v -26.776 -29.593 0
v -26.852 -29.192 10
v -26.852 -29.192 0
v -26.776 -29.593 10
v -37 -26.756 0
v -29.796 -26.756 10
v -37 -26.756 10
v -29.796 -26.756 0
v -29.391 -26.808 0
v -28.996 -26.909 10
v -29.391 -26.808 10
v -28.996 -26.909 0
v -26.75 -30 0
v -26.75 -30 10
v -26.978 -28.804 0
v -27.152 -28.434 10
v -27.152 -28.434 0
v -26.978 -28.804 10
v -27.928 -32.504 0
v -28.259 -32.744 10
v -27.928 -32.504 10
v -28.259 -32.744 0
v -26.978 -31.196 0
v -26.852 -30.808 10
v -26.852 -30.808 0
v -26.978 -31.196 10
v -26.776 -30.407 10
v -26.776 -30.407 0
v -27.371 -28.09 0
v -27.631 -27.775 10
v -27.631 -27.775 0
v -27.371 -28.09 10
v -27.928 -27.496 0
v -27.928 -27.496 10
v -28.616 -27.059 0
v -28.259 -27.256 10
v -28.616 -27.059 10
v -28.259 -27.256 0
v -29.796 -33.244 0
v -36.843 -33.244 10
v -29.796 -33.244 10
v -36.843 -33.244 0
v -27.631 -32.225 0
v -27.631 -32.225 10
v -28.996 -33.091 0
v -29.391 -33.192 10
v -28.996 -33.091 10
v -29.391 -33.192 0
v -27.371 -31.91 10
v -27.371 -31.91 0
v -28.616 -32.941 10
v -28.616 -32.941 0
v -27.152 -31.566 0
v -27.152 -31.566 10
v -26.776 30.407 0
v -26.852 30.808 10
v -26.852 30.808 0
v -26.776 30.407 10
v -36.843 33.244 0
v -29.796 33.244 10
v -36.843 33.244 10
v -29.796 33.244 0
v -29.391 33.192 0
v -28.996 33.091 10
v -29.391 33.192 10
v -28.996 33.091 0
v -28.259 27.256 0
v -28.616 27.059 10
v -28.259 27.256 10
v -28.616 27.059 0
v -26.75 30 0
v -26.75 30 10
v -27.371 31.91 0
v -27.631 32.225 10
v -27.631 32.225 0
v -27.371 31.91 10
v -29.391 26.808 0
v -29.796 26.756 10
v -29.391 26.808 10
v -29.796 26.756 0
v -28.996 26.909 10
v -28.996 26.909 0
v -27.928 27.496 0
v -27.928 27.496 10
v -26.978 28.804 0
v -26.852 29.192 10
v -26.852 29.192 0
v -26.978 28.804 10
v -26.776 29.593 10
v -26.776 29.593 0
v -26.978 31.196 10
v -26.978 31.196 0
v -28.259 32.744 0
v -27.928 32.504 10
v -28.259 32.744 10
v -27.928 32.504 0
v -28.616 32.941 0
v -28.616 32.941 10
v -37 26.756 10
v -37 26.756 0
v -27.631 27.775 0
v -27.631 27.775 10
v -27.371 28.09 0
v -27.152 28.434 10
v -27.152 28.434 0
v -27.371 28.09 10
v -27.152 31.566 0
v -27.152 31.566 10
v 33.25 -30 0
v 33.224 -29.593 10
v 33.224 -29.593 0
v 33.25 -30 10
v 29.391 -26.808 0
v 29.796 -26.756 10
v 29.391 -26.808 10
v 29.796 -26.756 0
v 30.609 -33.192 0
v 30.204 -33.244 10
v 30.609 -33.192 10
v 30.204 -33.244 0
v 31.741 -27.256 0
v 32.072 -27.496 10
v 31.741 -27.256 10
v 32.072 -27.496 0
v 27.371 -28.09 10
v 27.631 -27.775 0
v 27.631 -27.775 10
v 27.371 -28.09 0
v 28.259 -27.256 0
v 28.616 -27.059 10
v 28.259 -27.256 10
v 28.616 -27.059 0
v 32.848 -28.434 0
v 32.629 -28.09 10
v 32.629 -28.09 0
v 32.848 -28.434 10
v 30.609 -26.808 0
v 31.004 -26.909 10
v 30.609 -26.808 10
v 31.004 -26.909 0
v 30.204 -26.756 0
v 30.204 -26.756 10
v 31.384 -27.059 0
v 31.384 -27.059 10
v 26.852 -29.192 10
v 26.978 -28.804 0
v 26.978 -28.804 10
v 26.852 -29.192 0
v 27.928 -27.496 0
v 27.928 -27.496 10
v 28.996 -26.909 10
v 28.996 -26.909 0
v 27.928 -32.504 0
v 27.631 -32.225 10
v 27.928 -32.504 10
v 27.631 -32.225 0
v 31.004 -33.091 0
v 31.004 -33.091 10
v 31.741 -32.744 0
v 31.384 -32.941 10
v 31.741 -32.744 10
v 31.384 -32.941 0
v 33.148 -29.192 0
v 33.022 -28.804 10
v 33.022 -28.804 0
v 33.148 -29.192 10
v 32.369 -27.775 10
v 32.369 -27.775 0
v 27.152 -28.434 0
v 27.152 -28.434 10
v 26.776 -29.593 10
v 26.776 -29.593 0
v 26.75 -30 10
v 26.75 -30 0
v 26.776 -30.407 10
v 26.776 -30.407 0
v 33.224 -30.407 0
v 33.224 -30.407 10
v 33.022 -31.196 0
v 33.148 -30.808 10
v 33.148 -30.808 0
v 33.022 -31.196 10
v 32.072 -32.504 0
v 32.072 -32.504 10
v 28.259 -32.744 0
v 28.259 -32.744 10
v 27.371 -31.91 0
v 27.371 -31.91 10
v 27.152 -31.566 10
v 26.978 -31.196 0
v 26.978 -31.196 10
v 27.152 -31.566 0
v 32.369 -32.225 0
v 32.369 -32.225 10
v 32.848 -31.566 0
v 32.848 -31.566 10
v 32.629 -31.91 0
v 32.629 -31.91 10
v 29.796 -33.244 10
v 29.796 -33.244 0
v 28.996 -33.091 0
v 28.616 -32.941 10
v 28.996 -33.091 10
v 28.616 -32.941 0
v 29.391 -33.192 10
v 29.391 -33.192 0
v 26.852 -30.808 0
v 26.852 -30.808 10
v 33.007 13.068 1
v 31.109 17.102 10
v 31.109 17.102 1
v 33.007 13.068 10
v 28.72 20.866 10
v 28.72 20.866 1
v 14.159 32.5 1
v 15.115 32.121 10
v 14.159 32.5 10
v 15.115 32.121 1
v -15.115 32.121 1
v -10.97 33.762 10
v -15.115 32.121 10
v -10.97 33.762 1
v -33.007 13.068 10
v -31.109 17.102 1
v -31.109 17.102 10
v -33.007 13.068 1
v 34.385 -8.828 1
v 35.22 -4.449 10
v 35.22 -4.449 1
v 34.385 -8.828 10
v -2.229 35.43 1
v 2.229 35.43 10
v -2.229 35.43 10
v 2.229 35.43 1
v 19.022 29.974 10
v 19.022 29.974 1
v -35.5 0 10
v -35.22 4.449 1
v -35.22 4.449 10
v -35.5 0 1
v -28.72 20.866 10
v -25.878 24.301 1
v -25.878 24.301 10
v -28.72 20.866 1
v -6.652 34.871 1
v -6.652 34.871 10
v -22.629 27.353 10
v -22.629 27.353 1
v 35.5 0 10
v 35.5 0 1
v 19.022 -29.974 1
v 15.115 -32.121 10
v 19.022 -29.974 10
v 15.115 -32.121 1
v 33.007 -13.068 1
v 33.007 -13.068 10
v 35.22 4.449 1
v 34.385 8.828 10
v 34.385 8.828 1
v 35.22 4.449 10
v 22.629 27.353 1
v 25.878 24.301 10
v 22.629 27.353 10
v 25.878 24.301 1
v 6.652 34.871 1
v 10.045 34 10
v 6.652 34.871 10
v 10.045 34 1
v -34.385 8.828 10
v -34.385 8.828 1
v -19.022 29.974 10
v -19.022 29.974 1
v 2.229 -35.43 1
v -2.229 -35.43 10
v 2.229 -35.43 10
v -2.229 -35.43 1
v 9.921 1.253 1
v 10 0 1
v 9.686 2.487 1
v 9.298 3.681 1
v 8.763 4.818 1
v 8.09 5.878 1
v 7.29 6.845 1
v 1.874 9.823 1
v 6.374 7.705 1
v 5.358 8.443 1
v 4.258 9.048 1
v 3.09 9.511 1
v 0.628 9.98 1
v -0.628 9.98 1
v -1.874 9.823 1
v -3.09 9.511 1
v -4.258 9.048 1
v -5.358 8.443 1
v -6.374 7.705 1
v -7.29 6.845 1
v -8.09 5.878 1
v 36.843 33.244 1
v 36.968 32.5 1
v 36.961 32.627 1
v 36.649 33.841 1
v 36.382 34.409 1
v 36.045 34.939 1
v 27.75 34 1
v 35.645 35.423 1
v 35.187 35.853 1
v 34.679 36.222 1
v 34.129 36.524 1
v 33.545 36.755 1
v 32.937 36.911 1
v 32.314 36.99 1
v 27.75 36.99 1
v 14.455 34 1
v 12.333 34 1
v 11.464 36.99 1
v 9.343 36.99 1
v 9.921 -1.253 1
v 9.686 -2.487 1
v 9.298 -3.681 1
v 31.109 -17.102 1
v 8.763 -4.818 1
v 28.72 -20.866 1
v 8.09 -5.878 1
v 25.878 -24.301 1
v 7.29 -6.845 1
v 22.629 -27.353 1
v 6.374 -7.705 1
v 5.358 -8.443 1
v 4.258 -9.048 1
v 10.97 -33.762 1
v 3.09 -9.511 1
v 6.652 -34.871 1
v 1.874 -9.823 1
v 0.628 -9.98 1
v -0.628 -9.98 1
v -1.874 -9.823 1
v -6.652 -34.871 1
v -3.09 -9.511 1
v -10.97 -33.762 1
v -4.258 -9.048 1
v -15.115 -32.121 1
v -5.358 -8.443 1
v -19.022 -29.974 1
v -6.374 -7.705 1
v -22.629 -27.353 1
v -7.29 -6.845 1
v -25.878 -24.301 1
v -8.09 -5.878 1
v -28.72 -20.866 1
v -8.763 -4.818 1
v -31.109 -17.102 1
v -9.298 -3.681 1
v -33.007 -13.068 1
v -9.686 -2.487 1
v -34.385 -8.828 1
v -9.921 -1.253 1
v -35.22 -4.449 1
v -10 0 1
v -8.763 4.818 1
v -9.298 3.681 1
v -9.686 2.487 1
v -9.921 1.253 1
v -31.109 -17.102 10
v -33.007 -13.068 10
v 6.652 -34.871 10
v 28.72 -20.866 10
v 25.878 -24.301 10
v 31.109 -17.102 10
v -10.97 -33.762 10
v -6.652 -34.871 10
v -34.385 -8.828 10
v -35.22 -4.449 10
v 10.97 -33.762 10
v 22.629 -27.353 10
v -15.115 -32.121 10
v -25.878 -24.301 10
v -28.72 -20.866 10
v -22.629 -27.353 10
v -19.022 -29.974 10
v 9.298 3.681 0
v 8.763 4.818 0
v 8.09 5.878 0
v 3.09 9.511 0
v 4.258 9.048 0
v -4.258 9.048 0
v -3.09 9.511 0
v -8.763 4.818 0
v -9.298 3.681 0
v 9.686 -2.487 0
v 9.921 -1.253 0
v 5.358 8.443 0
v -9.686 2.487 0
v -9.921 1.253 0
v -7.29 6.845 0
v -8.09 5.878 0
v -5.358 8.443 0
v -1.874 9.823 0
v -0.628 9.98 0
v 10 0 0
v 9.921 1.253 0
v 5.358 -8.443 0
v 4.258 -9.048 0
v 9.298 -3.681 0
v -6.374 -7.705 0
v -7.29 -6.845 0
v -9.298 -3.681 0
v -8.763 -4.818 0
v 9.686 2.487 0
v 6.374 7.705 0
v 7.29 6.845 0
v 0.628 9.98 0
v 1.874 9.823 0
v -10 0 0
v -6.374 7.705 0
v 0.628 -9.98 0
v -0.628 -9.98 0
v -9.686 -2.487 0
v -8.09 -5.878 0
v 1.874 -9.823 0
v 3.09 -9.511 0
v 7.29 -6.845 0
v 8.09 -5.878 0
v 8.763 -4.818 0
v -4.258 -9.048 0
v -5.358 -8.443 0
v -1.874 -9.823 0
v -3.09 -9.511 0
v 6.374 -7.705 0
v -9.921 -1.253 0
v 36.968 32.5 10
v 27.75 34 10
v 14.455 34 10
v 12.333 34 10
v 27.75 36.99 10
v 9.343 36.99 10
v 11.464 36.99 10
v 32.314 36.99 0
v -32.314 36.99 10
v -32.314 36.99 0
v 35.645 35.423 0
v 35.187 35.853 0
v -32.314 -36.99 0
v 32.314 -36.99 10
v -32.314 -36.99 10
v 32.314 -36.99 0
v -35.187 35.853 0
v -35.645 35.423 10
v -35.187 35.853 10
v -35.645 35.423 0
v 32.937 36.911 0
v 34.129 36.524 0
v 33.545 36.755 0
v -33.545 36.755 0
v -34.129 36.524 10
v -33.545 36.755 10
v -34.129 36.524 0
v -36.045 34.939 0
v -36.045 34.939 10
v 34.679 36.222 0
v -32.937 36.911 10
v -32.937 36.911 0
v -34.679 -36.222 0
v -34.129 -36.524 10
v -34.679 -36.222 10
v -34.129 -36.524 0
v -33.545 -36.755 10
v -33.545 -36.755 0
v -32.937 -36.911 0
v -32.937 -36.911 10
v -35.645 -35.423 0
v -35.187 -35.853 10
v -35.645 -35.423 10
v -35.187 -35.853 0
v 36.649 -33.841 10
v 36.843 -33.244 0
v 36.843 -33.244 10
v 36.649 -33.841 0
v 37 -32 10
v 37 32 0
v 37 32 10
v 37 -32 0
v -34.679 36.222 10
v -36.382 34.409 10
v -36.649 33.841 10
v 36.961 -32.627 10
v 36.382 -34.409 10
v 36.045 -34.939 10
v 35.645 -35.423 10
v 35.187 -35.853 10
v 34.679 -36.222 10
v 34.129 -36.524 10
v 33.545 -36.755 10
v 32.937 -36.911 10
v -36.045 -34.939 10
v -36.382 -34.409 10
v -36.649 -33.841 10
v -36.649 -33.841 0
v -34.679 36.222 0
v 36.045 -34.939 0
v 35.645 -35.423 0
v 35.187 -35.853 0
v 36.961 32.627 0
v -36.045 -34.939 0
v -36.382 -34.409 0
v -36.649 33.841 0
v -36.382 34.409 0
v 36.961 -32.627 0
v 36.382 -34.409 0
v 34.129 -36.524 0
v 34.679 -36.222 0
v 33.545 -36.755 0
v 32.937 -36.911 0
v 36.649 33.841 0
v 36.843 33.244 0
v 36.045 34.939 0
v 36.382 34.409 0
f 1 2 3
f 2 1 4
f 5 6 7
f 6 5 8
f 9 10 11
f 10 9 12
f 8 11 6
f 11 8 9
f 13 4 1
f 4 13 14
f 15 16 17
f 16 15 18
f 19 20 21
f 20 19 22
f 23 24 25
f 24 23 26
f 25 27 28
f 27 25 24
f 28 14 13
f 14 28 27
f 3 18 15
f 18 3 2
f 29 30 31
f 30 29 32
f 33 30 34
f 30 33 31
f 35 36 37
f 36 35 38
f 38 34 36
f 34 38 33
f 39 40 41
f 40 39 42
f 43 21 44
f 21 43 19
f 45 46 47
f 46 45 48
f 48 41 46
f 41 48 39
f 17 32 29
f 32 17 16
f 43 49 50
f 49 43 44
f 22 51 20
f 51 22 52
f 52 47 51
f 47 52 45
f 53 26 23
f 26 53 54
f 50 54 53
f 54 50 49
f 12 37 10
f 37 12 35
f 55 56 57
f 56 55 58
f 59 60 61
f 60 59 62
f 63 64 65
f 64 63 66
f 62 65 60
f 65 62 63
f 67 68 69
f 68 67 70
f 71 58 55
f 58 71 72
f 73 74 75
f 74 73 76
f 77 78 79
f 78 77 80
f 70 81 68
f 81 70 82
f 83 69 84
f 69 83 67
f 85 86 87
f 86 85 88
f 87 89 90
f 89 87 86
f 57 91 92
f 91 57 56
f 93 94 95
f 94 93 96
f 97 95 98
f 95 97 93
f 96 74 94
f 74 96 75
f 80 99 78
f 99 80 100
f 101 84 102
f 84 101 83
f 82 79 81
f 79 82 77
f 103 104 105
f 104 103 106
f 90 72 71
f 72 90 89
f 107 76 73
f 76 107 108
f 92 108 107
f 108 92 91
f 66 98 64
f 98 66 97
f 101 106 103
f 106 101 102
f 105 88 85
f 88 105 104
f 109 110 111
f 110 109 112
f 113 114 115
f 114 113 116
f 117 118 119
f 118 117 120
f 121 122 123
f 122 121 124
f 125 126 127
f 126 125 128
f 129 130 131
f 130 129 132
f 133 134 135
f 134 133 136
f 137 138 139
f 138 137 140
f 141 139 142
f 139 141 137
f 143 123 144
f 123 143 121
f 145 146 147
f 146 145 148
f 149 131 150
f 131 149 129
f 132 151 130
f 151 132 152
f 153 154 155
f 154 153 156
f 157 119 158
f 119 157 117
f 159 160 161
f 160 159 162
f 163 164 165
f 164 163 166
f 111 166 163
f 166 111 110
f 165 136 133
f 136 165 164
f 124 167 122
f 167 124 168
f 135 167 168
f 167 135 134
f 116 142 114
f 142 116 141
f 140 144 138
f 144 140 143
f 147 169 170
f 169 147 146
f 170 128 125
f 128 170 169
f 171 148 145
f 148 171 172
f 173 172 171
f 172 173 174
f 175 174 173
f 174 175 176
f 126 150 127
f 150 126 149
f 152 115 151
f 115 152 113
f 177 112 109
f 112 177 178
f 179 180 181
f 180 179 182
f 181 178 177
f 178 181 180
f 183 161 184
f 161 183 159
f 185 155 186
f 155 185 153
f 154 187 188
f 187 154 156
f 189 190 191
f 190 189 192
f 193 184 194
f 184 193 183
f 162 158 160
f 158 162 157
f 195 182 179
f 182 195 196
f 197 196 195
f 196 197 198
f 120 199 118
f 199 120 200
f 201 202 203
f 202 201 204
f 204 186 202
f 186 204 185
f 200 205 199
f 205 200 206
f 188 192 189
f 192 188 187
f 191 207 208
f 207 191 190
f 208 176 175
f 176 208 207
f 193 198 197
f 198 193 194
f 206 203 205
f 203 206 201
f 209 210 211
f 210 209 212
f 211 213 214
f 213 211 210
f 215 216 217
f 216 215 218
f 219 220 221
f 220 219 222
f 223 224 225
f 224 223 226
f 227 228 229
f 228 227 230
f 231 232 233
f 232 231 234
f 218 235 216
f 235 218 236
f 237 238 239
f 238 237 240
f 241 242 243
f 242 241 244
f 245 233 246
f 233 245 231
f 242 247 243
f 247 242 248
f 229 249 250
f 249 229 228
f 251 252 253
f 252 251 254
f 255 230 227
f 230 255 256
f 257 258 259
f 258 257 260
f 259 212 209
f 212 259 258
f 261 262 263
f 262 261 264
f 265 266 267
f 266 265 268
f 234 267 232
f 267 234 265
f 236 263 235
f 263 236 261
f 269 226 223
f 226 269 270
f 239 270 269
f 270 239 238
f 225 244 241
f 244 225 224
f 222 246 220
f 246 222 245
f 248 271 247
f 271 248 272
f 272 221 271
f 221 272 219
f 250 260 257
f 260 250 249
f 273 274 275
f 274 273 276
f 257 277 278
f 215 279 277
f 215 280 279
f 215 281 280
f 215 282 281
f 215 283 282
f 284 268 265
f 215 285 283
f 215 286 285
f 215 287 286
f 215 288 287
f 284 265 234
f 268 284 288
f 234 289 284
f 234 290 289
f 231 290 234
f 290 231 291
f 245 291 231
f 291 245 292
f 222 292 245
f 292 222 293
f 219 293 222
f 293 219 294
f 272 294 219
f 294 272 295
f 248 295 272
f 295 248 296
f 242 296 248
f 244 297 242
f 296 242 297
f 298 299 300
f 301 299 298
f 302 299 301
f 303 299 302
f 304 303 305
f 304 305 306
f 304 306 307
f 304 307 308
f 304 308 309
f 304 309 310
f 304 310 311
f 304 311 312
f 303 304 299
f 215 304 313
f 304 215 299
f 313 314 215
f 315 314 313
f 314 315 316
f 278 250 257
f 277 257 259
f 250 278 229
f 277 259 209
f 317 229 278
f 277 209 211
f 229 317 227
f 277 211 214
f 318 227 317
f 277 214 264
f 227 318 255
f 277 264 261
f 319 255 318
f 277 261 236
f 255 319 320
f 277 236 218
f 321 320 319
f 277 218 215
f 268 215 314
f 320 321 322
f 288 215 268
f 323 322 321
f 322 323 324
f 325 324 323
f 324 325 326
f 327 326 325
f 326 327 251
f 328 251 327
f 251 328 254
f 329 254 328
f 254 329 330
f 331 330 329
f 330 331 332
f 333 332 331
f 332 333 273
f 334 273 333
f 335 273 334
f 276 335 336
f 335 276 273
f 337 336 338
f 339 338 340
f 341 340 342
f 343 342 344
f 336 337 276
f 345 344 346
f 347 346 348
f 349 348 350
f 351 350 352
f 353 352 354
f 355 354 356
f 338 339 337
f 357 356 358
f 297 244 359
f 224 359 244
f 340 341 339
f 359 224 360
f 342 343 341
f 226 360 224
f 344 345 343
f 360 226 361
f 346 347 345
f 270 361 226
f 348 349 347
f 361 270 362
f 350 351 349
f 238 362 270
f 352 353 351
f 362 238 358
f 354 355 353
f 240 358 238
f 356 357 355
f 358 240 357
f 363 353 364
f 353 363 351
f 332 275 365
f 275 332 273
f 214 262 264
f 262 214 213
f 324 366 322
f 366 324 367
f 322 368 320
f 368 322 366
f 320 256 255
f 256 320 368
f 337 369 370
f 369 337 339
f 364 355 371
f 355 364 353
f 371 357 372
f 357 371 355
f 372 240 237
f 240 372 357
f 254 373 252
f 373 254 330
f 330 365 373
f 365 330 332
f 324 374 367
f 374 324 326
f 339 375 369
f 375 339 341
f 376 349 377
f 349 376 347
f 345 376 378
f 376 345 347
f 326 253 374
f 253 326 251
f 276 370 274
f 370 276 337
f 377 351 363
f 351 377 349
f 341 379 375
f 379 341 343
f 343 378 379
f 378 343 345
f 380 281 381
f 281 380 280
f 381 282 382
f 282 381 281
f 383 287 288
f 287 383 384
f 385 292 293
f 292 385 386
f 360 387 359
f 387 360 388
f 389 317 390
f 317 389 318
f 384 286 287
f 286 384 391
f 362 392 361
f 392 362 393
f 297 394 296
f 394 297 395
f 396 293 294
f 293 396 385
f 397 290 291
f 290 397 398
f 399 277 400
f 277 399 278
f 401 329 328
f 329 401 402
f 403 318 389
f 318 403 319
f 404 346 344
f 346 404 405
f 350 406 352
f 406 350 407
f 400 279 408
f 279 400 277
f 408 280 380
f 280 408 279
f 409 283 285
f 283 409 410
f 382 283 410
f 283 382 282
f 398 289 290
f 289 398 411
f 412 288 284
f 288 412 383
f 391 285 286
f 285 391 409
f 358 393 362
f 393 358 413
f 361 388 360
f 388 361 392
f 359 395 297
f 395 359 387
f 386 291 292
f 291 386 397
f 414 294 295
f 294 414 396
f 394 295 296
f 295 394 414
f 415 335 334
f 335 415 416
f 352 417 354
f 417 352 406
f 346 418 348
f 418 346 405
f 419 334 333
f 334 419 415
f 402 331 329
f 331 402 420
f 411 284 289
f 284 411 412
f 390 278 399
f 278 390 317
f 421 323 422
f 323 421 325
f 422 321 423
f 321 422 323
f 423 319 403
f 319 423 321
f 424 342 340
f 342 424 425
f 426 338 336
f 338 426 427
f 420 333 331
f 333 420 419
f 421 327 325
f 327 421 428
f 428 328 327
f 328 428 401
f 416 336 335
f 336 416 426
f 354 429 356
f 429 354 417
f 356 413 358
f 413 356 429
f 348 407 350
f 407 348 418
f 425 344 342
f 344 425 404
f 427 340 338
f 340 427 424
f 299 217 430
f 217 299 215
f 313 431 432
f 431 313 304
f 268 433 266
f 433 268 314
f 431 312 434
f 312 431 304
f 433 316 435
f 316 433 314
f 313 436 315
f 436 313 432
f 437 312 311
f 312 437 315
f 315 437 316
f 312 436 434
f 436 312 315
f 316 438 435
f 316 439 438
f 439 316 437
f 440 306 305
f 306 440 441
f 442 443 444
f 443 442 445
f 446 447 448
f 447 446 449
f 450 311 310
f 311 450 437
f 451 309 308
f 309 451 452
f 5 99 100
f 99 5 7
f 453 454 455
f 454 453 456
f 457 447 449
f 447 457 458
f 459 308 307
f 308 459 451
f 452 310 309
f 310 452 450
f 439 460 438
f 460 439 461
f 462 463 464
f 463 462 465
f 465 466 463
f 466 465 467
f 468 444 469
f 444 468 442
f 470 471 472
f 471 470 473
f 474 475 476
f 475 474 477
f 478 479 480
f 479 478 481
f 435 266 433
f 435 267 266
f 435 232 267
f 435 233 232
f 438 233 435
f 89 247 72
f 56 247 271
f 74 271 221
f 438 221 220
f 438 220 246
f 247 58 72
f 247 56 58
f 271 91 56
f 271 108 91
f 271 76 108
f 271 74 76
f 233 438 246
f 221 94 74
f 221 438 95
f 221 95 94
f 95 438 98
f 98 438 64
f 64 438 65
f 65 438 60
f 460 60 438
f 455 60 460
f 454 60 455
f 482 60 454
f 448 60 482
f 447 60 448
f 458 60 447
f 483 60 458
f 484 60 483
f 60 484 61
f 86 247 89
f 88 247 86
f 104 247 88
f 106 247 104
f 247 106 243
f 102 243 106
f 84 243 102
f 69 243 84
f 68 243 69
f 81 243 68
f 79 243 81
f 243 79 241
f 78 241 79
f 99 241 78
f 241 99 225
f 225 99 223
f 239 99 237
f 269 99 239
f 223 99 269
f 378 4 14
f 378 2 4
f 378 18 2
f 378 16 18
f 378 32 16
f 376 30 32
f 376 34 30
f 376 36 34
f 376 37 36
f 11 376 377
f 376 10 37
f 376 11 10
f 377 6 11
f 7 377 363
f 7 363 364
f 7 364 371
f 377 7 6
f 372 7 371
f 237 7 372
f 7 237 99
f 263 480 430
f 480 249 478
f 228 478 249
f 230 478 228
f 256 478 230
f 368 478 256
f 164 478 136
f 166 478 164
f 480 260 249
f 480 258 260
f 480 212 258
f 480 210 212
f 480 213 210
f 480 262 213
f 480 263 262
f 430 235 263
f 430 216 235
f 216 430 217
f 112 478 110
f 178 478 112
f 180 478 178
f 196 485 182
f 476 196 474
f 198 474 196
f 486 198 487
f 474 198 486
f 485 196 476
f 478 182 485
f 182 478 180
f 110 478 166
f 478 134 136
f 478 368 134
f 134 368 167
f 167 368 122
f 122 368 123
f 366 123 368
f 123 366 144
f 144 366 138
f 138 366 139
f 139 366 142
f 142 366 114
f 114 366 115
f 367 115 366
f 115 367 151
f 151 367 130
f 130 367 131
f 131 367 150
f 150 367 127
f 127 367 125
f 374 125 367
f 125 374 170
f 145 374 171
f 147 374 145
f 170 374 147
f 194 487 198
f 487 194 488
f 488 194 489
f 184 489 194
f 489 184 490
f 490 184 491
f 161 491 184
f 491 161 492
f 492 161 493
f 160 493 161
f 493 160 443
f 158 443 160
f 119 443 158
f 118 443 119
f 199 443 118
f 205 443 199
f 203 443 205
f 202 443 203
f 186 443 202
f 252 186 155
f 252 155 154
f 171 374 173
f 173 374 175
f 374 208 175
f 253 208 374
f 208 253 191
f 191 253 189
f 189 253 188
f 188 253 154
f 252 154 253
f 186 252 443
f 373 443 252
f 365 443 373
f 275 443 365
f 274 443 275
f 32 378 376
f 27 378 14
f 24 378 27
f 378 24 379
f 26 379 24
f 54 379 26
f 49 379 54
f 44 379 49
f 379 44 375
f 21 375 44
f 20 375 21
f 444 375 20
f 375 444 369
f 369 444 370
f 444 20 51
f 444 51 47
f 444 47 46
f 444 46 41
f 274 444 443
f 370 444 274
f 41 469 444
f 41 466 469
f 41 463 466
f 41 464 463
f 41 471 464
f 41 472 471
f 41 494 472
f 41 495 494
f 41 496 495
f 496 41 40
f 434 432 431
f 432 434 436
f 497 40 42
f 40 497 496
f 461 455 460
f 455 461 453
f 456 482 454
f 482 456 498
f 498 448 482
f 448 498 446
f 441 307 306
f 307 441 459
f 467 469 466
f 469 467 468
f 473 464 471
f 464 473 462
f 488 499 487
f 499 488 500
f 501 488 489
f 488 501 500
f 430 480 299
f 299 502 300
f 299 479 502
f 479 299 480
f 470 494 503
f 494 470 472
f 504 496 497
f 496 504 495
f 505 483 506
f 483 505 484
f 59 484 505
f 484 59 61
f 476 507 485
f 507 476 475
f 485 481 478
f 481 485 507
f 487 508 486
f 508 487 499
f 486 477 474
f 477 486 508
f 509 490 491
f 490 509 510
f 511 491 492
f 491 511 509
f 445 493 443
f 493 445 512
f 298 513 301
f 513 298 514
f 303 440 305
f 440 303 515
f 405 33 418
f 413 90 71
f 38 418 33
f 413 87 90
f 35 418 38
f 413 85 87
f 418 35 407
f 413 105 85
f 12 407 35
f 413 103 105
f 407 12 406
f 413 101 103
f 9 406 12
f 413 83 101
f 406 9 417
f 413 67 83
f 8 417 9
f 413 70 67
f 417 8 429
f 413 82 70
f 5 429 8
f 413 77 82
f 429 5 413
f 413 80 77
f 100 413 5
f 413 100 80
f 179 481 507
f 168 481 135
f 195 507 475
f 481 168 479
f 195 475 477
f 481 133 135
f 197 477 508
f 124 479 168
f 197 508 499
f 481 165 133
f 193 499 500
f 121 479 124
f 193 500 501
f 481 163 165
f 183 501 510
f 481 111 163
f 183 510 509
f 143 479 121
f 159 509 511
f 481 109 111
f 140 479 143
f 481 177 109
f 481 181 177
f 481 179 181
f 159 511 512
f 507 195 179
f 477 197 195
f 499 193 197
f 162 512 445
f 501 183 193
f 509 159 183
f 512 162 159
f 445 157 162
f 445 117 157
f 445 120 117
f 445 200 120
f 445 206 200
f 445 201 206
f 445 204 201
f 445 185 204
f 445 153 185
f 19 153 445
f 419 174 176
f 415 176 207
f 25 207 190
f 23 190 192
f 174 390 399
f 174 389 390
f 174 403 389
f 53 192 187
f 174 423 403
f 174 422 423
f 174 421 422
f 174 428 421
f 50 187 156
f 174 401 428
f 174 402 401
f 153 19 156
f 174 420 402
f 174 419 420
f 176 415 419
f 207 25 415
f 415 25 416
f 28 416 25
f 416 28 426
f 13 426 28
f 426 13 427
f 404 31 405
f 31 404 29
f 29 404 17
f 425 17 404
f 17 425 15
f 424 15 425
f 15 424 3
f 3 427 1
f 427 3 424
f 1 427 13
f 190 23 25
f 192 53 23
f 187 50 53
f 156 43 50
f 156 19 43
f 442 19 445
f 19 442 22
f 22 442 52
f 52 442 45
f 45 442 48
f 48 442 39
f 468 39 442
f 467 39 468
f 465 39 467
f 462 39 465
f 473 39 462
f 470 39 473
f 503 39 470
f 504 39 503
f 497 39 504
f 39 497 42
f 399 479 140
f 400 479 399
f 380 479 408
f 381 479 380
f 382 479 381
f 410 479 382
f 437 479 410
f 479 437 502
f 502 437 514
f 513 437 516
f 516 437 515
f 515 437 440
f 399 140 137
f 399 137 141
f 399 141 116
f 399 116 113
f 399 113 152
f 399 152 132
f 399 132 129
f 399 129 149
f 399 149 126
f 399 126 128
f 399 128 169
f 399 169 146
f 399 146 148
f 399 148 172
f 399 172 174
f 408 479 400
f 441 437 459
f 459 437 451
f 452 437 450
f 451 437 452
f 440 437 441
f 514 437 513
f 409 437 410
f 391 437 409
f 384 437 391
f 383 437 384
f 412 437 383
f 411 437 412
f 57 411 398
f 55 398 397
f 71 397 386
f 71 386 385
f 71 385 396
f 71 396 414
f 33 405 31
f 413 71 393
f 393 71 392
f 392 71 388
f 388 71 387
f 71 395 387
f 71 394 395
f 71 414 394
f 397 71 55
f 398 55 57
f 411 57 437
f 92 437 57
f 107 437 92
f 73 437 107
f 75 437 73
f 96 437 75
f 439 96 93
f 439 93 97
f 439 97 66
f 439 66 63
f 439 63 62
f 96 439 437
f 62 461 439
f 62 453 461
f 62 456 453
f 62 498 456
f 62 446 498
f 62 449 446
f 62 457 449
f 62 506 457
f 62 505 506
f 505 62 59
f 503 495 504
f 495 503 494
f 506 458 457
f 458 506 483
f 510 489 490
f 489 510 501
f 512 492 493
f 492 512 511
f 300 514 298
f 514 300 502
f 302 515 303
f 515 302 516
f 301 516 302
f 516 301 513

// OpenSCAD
$fn = 50;


difference() {
	union() {
		translate(v = [0, 0, 0]) {
			rotate(a = [0, 0, 0]) {
				hull() {
					translate(v = [-32.0000000000, 32.0000000000, 0]) {
						rotate(a = [0, 0, 0]) {
							translate(v = [0, 0, 0]) {
								rotate(a = [0, 0, 0]) {
									cylinder(h = 10, r = 5);
								}
							}
						}
					}
					translate(v = [32.0000000000, 32.0000000000, 0]) {
						rotate(a = [0, 0, 0]) {
							translate(v = [0, 0, 0]) {
								rotate(a = [0, 0, 0]) {
									cylinder(h = 10, r = 5);
								}
							}
						}
					}
					translate(v = [-32.0000000000, -32.0000000000, 0]) {
						rotate(a = [0, 0, 0]) {
							translate(v = [0, 0, 0]) {
								rotate(a = [0, 0, 0]) {
									cylinder(h = 10, r = 5);
								}
							}
						}
					}
					translate(v = [32.0000000000, -32.0000000000, 0]) {
						rotate(a = [0, 0, 0]) {
							translate(v = [0, 0, 0]) {
								rotate(a = [0, 0, 0]) {
									cylinder(h = 10, r = 5);
								}
							}
						}
					}
				}
			}
		}
	}
	union() {
		translate(v = [-37.5000000000, -30.0000000000, -125]) {
			rotate(a = [0, 0, 0]) {
				hull() {
					translate(v = [7.5000000000, 0, 0]) {
						rotate(a = [0, 0, 0]) {
							translate(v = [0, 0, 0]) {
								rotate(a = [0, 0, 0]) {
									cylinder(h = 250, r = 3.2500000000);
								}
							}
						}
					}
					translate(v = [-7.5000000000, 0, 0]) {
						rotate(a = [0, 0, 0]) {
							translate(v = [0, 0, 0]) {
								rotate(a = [0, 0, 0]) {
									cylinder(h = 250, r = 3.2500000000);
								}
							}
						}
					}
				}
			}
		}
		translate(v = [-37.5000000000, 30.0000000000, -125]) {
			rotate(a = [0, 0, 0]) {
				hull() {
					translate(v = [7.5000000000, 0, 0]) {
						rotate(a = [0, 0, 0]) {
							translate(v = [0, 0, 0]) {
								rotate(a = [0, 0, 0]) {
									cylinder(h = 250, r = 3.2500000000);
								}
							}
						}
					}
					translate(v = [-7.5000000000, 0, 0]) {
						rotate(a = [0, 0, 0]) {
							translate(v = [0, 0, 0]) {
								rotate(a = [0, 0, 0]) {
									cylinder(h = 250, r = 3.2500000000);
								}
							}
						}
					}
				}
			}
		}
		translate(v = [30.0000000000, -30.0000000000, -125.0000000000]) {
			rotate(a = [0, 0, 0]) {
				cylinder(h = 250, r = 3.2500000000);
			}
		}
		translate(v = [0, 0, 1.0000000000]) {
			rotate(a = [0, 0, 0]) {
				cylinder(h = 12, r = 35.5000000000);
			}
		}
		translate(v = [0, 0, -5.0000000000]) {
			rotate(a = [0, 0, 0]) {
				cylinder(h = 10, r = 10.0000000000);
			}
		}
		translate(v = [0.0000000000, 32.5000000000, 1]) {
			rotate(a = [0, 0, 0]) {
				cube(size = [37.0000000000, 1.5000000000, 12]);
			}
		}
		translate(v = [27.7500000000, 32.5000000000, 1]) {
			rotate(a = [0, 0, 0]) {
				cube(size = [9.2500000000, 4.5000000000, 12]);
			}
		}
		translate(v = [8.5833333333, 37.7500000000, 1]) {
			rotate(a = [0, 0, -45]) {
				cube(size = [7.5000000000, 1.5000000000, 12]);
			}
		}
	}
}
